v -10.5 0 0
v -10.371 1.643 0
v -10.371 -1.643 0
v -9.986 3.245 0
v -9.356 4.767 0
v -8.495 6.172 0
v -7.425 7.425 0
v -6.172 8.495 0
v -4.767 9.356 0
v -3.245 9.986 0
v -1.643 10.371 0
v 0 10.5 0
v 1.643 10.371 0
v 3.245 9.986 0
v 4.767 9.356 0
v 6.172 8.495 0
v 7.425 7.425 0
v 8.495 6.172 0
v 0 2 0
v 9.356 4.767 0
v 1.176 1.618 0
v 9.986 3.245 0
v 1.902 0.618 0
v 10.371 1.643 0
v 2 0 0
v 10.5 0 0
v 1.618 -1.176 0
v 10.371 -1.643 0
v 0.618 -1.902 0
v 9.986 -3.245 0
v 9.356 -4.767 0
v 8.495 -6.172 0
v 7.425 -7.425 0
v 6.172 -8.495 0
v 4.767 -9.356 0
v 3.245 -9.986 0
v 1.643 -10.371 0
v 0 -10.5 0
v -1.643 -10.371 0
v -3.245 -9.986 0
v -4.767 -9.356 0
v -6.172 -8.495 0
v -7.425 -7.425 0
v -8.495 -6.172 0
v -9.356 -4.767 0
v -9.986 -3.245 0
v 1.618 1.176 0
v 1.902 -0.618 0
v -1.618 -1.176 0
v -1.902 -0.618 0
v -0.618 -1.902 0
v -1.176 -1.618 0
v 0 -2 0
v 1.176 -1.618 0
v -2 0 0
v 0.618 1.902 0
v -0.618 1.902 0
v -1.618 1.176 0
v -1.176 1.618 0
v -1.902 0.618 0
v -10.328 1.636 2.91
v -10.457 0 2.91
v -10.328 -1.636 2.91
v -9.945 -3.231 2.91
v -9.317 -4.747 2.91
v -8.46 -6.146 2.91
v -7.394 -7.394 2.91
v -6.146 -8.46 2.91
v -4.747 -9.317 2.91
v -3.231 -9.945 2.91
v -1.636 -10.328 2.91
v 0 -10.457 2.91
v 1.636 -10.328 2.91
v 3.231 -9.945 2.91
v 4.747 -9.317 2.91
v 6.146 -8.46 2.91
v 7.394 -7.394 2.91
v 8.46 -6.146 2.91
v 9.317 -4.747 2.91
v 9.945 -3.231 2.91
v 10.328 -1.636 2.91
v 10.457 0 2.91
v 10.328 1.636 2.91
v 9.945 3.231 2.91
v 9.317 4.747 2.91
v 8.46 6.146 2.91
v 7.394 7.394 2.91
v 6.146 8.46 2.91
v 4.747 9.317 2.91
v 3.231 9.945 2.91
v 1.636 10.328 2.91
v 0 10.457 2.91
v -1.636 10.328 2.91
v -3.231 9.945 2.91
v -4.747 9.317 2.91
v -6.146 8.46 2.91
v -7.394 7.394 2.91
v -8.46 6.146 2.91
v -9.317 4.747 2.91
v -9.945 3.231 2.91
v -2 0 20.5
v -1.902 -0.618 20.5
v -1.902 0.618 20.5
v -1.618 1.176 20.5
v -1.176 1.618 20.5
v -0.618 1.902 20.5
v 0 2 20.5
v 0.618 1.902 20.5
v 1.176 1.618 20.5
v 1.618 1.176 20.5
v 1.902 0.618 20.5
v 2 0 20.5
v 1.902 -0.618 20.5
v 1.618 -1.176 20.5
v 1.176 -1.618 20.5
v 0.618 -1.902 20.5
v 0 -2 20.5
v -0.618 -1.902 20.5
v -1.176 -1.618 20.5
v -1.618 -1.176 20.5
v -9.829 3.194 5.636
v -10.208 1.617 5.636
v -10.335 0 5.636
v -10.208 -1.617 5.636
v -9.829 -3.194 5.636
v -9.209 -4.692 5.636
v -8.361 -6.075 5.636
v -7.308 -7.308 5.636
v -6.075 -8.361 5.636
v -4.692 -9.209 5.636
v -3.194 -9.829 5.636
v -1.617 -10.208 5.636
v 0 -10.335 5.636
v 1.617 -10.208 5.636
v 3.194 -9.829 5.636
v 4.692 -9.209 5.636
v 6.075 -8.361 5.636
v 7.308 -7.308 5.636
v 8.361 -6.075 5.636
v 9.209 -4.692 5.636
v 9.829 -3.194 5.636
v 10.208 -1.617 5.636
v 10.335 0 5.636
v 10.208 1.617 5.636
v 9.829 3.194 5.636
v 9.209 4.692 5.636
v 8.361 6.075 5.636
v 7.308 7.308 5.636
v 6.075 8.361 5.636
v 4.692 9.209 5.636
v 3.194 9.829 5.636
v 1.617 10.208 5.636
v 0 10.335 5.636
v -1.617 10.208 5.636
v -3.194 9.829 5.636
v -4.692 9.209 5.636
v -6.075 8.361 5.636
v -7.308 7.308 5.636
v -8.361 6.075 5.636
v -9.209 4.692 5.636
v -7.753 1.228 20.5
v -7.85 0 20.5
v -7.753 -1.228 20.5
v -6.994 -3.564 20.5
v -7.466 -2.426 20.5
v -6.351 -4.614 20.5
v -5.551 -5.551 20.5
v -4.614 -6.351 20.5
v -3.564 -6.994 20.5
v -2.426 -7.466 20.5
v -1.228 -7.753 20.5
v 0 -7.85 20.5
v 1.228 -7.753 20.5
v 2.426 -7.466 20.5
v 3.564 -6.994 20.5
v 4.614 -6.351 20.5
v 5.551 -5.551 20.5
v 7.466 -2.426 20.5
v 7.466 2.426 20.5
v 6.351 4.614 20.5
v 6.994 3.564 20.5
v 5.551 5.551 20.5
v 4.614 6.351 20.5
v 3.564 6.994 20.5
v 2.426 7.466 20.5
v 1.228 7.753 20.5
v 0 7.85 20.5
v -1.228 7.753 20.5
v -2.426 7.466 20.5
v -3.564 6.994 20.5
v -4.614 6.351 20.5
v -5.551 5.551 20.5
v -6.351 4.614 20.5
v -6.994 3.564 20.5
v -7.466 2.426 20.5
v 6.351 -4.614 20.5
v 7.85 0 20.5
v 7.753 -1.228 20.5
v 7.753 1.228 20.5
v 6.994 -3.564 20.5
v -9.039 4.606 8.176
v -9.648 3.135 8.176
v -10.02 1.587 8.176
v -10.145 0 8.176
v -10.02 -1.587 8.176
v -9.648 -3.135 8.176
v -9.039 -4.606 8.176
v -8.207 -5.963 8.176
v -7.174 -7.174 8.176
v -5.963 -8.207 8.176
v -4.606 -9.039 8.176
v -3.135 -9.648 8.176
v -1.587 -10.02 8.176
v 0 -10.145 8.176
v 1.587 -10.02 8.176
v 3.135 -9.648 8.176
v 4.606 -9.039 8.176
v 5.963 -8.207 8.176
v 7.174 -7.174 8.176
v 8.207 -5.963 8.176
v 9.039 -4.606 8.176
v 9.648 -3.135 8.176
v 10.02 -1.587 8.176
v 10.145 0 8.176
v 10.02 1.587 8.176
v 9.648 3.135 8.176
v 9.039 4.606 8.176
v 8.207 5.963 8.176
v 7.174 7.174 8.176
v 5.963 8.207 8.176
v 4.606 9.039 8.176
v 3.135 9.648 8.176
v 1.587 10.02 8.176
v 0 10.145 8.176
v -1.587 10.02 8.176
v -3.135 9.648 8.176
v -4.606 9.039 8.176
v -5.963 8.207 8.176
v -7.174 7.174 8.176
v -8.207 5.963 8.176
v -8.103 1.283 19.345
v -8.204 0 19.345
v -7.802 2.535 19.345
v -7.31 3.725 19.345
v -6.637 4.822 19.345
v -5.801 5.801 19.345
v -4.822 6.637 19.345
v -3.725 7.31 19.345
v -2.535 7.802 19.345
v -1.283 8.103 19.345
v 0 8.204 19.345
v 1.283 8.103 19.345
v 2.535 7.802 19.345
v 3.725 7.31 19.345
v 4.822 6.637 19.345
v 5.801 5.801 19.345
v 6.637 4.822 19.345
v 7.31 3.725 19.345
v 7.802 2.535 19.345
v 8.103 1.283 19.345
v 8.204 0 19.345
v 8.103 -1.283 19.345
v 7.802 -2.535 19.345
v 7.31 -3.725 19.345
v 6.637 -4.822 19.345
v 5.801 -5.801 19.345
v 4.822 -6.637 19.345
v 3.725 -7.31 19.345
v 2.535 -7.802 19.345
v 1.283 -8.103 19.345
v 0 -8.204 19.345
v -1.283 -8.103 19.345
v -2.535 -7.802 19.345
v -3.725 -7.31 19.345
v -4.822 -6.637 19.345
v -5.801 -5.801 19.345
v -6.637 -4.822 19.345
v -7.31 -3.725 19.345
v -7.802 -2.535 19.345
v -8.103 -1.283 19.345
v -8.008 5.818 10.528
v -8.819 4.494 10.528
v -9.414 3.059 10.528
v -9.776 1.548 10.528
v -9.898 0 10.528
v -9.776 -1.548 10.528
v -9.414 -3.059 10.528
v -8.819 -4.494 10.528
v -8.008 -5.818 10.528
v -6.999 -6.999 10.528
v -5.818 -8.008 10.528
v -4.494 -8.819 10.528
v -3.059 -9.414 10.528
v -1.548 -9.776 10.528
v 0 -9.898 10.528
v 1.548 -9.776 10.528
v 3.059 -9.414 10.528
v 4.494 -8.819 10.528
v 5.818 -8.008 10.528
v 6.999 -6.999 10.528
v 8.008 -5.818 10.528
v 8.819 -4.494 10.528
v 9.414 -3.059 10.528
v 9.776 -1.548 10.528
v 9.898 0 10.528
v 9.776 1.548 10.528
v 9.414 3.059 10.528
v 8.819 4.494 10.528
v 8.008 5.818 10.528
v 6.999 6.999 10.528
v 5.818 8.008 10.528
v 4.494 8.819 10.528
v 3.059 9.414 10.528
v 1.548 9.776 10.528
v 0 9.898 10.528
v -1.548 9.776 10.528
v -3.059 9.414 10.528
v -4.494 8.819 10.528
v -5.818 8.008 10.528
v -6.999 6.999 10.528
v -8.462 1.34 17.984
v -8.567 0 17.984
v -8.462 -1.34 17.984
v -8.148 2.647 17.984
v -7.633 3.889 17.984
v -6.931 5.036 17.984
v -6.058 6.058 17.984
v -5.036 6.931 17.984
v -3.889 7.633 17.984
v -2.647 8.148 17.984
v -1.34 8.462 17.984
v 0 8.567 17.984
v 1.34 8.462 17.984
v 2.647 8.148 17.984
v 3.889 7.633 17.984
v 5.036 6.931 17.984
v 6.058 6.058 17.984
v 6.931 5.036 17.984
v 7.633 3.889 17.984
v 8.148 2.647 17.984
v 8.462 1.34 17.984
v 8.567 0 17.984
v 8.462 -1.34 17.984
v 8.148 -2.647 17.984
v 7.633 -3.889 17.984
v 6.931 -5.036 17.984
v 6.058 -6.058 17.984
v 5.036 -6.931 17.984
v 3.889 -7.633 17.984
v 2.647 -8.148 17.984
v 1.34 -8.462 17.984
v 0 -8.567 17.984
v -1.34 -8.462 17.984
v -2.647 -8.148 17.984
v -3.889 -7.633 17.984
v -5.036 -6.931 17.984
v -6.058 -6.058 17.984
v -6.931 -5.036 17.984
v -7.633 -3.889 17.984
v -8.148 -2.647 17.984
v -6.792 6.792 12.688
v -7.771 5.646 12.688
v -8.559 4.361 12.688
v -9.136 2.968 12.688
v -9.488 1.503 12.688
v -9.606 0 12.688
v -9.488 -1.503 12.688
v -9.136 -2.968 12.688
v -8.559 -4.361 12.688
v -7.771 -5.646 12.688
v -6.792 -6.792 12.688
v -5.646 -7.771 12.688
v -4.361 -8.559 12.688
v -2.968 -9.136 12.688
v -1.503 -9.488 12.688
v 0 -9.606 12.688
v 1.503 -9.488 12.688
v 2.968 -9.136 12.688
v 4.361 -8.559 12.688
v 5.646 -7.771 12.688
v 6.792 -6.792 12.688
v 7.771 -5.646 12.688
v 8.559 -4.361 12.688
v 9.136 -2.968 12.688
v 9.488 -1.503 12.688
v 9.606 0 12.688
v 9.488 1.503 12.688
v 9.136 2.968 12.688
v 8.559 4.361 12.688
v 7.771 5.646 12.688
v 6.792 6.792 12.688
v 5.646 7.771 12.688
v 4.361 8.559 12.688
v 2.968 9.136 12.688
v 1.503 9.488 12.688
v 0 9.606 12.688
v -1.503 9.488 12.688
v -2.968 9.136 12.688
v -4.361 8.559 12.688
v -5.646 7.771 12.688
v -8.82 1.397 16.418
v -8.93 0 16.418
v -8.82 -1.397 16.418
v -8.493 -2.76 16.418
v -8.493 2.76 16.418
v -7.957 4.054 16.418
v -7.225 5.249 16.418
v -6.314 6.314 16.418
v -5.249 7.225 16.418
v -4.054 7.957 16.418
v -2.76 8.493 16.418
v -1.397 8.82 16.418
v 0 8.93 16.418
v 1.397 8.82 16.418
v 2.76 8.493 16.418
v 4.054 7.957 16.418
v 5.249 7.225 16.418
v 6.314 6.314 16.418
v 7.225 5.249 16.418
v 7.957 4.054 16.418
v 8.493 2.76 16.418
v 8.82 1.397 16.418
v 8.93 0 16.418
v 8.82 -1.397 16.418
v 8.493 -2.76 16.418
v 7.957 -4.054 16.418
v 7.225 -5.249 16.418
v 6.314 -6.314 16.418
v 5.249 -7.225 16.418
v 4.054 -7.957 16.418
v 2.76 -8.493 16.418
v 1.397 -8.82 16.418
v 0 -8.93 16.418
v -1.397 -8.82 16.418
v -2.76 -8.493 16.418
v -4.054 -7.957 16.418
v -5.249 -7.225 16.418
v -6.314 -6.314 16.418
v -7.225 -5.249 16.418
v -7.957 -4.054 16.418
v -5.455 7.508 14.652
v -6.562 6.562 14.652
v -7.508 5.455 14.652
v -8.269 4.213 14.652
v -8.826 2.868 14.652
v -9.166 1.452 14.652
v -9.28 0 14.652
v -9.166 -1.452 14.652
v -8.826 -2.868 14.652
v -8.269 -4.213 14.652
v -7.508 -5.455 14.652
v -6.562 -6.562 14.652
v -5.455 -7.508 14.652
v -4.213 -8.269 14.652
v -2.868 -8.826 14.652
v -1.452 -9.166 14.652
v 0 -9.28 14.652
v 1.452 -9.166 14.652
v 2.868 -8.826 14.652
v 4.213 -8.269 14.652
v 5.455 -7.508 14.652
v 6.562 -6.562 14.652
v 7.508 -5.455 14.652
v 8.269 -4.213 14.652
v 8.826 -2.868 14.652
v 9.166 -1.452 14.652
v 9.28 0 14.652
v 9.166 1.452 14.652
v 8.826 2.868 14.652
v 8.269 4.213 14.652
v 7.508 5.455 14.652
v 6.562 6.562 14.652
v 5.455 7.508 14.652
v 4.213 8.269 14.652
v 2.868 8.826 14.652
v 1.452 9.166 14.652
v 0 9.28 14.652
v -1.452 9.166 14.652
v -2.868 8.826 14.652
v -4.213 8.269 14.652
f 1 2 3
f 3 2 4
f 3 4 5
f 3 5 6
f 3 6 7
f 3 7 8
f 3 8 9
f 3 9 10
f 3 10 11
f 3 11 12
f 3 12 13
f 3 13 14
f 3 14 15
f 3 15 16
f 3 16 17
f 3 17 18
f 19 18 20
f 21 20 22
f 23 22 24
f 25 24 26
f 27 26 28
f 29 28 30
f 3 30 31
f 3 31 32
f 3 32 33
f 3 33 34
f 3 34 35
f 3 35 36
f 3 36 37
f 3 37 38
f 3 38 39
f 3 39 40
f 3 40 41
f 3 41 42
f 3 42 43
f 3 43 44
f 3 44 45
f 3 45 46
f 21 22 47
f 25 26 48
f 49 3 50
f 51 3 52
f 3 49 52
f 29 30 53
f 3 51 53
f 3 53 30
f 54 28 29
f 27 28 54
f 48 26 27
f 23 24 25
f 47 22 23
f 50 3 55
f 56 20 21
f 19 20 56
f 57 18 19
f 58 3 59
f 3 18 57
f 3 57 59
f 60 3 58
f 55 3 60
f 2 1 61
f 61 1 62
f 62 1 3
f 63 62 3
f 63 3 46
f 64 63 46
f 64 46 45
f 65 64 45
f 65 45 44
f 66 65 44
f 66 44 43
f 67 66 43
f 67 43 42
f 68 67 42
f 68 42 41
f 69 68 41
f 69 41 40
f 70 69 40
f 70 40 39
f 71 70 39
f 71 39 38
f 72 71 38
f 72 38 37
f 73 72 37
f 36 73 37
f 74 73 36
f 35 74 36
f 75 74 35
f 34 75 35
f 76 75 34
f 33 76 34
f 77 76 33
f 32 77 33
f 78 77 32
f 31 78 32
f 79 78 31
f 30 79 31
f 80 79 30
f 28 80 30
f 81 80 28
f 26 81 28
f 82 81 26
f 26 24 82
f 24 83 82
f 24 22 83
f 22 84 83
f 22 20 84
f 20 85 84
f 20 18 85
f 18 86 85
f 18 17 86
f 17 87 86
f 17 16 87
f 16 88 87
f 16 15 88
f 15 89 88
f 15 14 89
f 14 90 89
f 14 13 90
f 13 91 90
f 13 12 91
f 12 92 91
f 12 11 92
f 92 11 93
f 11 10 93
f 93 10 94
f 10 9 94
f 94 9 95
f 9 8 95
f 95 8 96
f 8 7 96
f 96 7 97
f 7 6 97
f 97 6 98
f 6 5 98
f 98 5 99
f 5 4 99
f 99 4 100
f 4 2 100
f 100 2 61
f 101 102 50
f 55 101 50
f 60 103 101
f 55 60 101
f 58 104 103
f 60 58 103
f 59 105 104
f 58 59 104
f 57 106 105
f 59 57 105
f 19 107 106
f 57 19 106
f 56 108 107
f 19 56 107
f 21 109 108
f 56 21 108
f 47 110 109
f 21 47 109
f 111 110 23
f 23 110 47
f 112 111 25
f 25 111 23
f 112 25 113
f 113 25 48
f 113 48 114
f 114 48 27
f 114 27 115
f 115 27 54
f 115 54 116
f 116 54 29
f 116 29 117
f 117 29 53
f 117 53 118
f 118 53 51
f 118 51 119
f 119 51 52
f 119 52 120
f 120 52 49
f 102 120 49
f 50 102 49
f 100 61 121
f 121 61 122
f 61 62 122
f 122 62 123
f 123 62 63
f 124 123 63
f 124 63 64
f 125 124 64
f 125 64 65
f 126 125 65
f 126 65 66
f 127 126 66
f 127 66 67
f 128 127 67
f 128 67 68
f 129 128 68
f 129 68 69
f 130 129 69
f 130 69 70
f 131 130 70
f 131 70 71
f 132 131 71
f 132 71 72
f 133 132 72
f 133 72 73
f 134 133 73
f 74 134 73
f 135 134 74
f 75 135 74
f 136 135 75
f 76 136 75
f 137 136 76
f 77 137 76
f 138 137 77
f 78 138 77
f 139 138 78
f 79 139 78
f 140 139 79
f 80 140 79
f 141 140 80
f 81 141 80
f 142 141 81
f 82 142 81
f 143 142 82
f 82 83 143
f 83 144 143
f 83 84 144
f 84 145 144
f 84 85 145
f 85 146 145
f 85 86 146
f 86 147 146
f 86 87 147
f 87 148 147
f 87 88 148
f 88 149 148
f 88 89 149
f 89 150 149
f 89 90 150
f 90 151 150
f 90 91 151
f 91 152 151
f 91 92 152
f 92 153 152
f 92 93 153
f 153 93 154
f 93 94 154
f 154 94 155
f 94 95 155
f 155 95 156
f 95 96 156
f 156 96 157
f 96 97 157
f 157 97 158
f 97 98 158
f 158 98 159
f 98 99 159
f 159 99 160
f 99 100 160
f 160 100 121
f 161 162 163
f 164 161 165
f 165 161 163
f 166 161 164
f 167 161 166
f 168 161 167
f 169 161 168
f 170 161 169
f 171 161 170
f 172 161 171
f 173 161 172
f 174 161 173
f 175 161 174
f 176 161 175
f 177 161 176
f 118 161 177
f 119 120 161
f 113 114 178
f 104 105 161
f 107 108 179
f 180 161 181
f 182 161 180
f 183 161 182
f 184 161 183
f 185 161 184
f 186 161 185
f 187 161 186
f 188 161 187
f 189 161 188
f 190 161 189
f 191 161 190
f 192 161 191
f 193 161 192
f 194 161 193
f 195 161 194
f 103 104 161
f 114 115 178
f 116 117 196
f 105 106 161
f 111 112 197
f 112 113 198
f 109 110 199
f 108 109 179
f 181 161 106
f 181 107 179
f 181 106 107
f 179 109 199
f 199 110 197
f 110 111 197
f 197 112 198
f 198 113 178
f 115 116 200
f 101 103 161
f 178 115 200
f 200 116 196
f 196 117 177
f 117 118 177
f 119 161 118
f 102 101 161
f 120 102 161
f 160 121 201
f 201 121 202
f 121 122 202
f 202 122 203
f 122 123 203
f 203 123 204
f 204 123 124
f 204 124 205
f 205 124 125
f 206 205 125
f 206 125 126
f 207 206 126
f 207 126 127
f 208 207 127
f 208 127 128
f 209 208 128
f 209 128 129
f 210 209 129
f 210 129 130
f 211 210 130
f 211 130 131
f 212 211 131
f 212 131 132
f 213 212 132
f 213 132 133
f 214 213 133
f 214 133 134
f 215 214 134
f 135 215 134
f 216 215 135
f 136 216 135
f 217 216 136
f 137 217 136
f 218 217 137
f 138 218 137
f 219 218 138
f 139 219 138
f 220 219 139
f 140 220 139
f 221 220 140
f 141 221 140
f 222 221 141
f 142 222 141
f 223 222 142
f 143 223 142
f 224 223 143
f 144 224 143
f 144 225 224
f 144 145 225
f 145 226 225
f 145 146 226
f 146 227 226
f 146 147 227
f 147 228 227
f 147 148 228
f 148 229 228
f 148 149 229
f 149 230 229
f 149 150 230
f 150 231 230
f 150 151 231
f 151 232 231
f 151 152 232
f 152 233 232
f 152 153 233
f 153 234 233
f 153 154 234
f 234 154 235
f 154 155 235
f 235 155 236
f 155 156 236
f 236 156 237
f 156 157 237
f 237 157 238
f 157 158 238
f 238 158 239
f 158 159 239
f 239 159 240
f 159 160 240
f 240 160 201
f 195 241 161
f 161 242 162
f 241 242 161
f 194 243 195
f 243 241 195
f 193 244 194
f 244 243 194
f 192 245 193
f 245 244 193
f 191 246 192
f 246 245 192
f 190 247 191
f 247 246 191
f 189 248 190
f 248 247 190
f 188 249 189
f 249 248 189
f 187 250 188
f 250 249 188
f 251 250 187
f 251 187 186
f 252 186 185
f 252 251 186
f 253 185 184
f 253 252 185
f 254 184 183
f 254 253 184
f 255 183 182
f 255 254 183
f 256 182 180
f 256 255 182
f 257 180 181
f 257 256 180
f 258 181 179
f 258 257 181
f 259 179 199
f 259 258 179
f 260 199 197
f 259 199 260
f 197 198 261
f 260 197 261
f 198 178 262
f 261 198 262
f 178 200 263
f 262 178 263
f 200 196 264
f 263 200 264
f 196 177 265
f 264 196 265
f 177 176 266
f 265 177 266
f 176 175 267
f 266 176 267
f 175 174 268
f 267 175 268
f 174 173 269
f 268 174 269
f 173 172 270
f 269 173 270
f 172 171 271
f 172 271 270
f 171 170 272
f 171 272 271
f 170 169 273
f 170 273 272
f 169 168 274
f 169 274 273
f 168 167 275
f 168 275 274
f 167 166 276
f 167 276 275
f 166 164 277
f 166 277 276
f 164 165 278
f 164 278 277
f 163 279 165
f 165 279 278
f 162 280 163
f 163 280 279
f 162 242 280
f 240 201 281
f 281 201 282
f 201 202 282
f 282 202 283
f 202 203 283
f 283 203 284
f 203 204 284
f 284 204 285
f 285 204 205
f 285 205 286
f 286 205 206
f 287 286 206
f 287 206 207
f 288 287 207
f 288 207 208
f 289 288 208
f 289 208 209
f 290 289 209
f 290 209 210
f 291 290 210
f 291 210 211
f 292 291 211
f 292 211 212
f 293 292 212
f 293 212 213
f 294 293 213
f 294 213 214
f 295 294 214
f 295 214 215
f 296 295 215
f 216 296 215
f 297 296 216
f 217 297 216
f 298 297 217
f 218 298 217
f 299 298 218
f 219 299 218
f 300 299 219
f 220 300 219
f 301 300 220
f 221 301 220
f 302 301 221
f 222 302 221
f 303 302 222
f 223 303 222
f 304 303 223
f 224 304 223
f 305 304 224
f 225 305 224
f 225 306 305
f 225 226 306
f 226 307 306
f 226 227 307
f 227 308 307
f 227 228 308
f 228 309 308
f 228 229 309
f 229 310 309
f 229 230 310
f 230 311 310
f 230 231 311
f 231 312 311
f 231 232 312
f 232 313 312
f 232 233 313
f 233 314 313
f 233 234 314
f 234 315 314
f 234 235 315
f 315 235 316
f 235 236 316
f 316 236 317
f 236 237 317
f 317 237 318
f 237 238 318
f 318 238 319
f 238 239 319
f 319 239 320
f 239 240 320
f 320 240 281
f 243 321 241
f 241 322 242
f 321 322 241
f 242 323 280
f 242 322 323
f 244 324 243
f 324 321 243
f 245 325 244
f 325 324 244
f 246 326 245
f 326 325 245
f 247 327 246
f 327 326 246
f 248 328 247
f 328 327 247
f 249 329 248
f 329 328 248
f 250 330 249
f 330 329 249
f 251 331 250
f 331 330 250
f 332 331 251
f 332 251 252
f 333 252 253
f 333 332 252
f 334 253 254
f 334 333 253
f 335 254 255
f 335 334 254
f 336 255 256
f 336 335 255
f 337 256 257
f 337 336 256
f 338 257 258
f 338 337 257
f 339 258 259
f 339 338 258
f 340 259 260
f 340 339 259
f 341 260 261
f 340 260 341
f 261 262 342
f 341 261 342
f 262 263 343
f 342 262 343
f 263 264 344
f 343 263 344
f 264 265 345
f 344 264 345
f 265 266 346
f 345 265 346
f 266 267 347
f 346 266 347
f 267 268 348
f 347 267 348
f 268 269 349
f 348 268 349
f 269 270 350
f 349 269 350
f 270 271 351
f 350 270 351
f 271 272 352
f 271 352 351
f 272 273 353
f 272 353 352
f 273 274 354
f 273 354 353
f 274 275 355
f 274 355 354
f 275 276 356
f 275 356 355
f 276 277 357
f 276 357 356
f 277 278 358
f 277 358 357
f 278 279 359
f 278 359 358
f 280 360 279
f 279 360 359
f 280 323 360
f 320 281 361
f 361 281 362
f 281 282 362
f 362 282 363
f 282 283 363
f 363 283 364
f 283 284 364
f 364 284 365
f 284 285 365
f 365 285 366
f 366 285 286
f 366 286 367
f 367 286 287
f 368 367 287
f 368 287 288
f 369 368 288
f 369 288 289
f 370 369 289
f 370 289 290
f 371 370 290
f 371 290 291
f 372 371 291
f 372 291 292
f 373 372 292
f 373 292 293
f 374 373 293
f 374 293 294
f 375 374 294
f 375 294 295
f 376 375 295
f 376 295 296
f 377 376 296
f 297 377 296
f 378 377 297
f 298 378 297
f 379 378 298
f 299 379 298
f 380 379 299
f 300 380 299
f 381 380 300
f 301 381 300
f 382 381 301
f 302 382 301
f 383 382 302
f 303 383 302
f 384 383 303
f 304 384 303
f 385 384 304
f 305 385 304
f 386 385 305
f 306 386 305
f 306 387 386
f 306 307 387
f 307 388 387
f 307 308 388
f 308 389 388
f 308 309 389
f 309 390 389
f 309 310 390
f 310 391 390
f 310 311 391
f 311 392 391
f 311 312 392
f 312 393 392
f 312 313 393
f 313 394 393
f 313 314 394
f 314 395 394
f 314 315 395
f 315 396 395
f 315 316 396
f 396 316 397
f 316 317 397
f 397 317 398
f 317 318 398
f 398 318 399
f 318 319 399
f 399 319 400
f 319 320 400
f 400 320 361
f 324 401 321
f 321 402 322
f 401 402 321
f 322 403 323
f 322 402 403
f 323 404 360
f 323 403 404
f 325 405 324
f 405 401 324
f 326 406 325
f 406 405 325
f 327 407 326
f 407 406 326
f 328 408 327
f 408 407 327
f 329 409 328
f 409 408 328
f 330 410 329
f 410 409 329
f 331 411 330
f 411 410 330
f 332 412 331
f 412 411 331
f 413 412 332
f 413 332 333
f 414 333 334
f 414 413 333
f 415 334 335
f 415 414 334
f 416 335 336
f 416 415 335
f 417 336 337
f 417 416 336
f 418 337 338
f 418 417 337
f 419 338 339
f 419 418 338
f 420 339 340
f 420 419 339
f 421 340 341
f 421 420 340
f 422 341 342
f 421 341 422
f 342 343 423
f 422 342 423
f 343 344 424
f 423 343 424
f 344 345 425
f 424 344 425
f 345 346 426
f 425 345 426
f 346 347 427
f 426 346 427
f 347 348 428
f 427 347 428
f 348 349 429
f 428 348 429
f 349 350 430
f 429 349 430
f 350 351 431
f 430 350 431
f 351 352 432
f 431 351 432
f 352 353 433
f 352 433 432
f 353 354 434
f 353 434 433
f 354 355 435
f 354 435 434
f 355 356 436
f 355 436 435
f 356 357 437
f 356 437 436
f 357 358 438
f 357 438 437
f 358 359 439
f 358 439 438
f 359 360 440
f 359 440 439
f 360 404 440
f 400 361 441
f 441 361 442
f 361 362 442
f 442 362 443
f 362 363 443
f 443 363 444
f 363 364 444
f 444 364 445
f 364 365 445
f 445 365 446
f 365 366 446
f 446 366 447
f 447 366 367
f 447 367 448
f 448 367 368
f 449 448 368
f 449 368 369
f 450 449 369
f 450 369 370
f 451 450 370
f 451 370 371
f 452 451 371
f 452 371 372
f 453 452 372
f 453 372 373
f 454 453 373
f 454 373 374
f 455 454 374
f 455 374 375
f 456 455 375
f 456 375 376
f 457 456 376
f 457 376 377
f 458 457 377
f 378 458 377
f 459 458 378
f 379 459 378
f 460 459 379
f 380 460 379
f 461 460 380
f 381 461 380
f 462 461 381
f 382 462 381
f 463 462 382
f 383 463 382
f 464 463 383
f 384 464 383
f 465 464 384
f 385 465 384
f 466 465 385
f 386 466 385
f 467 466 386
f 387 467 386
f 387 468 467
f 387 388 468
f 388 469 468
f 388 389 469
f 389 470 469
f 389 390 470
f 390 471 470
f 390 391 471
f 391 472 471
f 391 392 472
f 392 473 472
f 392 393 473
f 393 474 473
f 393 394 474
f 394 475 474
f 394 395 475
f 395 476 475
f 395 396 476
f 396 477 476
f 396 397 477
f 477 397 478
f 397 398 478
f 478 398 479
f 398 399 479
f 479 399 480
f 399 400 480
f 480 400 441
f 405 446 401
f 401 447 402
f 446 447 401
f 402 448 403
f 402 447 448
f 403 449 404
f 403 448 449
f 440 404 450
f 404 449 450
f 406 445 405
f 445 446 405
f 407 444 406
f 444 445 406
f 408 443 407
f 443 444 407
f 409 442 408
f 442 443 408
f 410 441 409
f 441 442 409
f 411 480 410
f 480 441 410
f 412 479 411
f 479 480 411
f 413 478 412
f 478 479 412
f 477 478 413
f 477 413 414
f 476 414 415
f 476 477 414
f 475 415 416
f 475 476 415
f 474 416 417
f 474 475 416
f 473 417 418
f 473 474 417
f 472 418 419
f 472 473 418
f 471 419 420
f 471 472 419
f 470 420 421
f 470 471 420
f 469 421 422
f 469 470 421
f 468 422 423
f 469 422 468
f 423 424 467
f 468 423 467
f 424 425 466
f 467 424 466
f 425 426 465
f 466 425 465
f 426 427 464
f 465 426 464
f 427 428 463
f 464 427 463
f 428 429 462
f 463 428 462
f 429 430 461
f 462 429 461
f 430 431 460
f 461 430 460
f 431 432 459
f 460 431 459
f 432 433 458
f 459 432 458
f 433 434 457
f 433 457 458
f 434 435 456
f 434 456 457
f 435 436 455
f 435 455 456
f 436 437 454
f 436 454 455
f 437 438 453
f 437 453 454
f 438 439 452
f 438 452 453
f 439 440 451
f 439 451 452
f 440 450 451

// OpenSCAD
// file: bezier.scad
function bezier_quadratic_0(t) = pow((1 - t), 3);
function bezier_quadratic_1(t) = 3 * t * (pow((1 - t), 2));
function bezier_quadratic_2(t) = 3 * (pow(t, 2)) * (1 - t);
function bezier_quadratic_3(t) = pow(t, 3);

function bezier_quadratic_point(p0, p1, p2, p3, t) = [
    bezier_quadratic_0(t) * p0[0] + bezier_quadratic_1(t) * p1[0] + bezier_quadratic_2(t) * p2[0] + bezier_quadratic_3(t) * p3[0],
    bezier_quadratic_0(t) * p0[1] + bezier_quadratic_1(t) * p1[1] + bezier_quadratic_2(t) * p2[1] + bezier_quadratic_3(t) * p3[1]
];

module bezier_curve(points, focal_point=[0, 0], steps=10)
{
    for (step = [steps : 1]) {
        polygon(
            points=[
                focal_point,
                bezier_quadratic_point(points[0], points[1], points[2], points[3], step / steps),
                bezier_quadratic_point(points[0], points[1], points[2], points[3], (step - 1) / steps)
            ],
            paths=[[0, 1, 2]]
        );
    }
}

module control_points(points, r=0.5, h=10, color=[1, 0, 0])
{
    for (point = [0 : 3]) {
        translate(points[point])
            color(color)
            cylinder(r=r, h=h, $fn=20);
    }
}

//bezier_curve( [[0, 20.5],[0,8],[1.1,3],[2.65,0]], [0,0]);
// main file
include <bezier.scad>;


module mecanum_wheel_roller(
    major_r = 10.5,
    minor_r = 7.85,
    height  = 20.5,
    bore_r  = 2
    )
{
    delta_r = major_r - minor_r;

    points = [
        [0, height],
        [delta_r - 1.5, 17],
        [delta_r, 10],
        [delta_r, 0]
    ];

    difference() {
        rotate_extrude($fn=40)
            union() {
                translate([minor_r, 0, 0]) bezier_curve(points);
                polygon(points=[
                        [0, 0],
                        [minor_r, 0],
                        [minor_r, height],
                        [0, height]
                    ], paths=[[0, 1, 2, 3, 0]]);
            }
        cylinder(r=bore_r, h=height, $fn=20);
    }
}

mecanum_wheel_roller();
